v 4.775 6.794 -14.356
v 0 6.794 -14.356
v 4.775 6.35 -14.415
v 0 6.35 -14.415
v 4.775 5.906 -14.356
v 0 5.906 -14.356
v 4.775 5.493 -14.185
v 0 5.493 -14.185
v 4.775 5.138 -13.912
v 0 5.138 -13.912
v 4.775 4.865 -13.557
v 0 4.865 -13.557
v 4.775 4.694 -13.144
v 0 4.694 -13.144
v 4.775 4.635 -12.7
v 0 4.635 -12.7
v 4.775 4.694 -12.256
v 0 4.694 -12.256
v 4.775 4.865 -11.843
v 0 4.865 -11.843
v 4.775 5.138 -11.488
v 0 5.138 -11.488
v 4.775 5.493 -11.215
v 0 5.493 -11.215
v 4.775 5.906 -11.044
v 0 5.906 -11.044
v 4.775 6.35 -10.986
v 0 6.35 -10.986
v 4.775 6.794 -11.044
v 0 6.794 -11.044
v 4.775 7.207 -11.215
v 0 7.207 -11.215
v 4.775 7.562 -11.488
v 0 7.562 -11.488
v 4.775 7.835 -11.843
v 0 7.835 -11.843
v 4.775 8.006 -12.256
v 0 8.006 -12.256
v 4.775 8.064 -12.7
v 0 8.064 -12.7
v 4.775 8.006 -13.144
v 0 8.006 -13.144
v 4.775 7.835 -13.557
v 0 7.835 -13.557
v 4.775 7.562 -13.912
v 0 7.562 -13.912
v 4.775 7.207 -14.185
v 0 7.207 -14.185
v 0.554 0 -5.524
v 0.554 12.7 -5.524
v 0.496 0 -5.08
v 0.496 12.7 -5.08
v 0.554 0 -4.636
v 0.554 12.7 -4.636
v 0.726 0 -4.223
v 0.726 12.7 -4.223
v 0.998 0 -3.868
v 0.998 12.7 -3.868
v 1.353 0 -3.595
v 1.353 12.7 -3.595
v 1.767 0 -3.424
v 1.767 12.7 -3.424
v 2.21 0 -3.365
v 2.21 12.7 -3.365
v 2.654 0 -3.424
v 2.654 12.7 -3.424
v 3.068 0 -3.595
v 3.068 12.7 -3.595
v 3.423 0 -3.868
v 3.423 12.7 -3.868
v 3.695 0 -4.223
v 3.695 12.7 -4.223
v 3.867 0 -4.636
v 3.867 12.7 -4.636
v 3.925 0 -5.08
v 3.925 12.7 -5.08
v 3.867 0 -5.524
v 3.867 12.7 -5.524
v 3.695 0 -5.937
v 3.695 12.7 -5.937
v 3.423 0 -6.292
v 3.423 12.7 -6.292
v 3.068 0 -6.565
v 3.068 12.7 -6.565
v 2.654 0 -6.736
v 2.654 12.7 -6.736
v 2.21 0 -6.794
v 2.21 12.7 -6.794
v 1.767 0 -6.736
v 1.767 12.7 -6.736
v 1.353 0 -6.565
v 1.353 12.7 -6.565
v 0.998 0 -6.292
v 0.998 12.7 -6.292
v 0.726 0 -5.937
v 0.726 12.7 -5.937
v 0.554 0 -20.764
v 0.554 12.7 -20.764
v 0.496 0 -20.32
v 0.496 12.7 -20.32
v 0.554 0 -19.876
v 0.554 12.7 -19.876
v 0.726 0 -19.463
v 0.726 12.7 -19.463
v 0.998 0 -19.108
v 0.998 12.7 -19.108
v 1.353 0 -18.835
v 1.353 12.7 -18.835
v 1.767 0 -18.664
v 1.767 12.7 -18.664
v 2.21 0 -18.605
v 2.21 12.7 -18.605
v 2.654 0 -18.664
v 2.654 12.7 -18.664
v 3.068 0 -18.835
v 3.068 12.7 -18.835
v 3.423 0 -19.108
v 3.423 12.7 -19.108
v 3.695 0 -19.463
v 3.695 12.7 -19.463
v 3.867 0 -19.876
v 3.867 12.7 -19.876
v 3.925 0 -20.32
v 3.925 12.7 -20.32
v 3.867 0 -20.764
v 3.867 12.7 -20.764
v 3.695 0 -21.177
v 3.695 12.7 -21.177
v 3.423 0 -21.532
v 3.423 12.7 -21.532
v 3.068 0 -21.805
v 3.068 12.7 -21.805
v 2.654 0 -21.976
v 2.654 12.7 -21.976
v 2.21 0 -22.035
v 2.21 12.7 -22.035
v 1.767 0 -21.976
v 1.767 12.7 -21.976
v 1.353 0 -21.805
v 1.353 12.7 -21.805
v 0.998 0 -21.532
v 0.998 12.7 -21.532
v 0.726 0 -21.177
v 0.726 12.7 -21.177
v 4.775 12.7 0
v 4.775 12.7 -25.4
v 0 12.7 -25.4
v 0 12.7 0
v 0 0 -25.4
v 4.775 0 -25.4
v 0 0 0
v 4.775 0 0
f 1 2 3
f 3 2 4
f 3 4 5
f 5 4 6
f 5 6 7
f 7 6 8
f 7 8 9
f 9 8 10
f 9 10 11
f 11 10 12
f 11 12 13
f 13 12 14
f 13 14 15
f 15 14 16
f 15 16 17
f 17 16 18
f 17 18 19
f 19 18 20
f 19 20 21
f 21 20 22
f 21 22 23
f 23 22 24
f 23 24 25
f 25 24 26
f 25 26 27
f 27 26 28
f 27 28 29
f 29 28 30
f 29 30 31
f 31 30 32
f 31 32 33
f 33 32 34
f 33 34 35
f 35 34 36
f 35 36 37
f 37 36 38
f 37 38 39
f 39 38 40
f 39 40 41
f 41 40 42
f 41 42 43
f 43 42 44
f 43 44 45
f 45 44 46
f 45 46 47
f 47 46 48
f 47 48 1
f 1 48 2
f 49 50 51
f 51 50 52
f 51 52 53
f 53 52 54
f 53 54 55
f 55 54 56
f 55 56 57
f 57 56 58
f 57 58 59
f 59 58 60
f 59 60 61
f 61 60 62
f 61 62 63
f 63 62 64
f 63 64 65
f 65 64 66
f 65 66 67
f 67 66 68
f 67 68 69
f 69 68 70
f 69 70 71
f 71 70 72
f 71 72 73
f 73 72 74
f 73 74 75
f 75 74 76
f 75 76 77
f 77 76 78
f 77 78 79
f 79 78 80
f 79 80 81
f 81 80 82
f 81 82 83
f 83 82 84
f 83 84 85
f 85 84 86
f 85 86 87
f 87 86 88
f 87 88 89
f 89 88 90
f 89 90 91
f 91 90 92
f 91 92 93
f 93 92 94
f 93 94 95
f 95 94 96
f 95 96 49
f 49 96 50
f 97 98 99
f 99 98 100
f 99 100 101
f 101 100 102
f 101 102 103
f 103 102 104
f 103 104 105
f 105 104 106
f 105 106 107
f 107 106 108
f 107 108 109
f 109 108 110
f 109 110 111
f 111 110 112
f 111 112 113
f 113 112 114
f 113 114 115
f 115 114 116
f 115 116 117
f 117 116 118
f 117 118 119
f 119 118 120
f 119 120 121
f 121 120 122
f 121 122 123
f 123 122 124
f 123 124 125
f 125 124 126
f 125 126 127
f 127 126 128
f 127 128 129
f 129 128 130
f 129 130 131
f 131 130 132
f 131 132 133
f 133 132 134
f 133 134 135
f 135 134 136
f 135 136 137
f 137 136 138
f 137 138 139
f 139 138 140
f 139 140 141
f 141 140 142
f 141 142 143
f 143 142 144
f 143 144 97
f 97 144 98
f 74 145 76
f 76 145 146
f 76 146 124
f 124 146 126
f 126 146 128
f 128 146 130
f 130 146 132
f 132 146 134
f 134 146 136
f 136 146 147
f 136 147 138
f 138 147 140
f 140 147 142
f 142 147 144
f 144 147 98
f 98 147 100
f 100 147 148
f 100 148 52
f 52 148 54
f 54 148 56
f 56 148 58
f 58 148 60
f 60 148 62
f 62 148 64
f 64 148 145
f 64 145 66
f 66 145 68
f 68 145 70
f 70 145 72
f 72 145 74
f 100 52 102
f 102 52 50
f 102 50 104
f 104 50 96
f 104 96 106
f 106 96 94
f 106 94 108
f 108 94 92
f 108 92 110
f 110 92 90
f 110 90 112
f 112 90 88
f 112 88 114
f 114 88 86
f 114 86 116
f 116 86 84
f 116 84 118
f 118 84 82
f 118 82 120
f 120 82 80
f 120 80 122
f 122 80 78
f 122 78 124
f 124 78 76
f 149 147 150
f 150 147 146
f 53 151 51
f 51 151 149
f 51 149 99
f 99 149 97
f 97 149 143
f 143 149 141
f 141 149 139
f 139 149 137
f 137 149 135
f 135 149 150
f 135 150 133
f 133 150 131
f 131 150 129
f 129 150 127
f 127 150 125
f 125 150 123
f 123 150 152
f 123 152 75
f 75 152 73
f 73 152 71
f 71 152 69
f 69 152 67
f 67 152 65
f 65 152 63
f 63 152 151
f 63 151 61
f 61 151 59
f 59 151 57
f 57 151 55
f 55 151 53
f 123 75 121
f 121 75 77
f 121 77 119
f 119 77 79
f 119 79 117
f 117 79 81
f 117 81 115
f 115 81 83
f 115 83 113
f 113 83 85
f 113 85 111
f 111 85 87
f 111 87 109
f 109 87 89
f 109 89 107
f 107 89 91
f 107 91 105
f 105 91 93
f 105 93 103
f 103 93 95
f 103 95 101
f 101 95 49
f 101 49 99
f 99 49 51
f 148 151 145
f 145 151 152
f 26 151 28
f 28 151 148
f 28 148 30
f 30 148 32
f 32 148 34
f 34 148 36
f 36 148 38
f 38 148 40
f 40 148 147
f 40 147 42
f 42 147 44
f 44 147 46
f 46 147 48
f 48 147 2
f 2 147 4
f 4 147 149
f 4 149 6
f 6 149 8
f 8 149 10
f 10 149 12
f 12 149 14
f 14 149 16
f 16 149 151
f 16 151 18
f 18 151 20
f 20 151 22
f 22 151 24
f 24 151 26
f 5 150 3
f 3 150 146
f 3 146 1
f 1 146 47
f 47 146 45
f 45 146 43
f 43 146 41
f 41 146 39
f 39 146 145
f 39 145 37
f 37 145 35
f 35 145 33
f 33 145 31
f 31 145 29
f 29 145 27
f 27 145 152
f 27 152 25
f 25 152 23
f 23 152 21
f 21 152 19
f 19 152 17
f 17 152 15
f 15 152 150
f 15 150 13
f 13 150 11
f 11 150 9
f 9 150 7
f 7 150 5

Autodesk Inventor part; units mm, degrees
ref_plane "YZ Plane" through (0, 0, 0) normal (1, 0, 0) x (0, 1, 0)
ref_plane "XZ Plane" through (0, 0, 0) normal (0, 1, 0) x (-1, 0, 0)
ref_plane "XY Plane" through (0, 0, 0) normal (0, 0, 1) x (1, 0, 0)
sketch "Sketch1" plane through (0, 0, 0) normal (1, 0, 0) x (0, 1, 0)
  line L0 (0, 0) -> (12.7, 0)
  line L1 (12.7, 0) -> (12.7, -25.4)
  line L2 (12.7, -25.4) -> (0, -25.4)
  line L3 (0, -25.4) -> (0, 0)
  dimension "d0" = 12.7
  dimension "d1" = 25.4
extrude "Extrusion1" add sketch "Sketch1" along normal blind 4.7752
sketch "Sketch2" plane through (0, 12.7, 0) normal (0, 1, 0) x (1, 0, 0)
  line L0 (0, 25.4) -> (4.7752, 25.4) projected
  line L1 (0, 0) -> (4.7752, 0) projected
  point P0 (2.2104, 5.08)
  point P1 (2.2104, 20.32)
  dimension "d22" = 5.08
  dimension "d23" = 5.08
hole "Hole1" at (2.2104, 12.7, -5.08) at (2.2104, 12.7, -20.32) direction (0, -1, 0) diameter 3.429 end through all
sketch "Sketch3" plane through (0, 0, 0) normal (-1, 0, 0) x (0, 0, 1)
  line L0 (0, 12.7) -> (-25.4, 12.7) projected
  line L1 (-25.4, 0) -> (0, 0) projected
  line L2 (0, 0) -> (0, 12.7) projected
  point P0 (-12.7, 6.35)
  dimension "d11" = 12.7
  dimension "d12" = 25.4
  dimension "d13" = 6.35
  dimension "d14" = 12.7
hole "Hole2" at (0, 6.35, -12.7) direction (1, 0, 0) diameter 3.429 end through all
equation "\"d13\" = 0.5 * d11"
properties part number "WheelIntakeSpringStop"
